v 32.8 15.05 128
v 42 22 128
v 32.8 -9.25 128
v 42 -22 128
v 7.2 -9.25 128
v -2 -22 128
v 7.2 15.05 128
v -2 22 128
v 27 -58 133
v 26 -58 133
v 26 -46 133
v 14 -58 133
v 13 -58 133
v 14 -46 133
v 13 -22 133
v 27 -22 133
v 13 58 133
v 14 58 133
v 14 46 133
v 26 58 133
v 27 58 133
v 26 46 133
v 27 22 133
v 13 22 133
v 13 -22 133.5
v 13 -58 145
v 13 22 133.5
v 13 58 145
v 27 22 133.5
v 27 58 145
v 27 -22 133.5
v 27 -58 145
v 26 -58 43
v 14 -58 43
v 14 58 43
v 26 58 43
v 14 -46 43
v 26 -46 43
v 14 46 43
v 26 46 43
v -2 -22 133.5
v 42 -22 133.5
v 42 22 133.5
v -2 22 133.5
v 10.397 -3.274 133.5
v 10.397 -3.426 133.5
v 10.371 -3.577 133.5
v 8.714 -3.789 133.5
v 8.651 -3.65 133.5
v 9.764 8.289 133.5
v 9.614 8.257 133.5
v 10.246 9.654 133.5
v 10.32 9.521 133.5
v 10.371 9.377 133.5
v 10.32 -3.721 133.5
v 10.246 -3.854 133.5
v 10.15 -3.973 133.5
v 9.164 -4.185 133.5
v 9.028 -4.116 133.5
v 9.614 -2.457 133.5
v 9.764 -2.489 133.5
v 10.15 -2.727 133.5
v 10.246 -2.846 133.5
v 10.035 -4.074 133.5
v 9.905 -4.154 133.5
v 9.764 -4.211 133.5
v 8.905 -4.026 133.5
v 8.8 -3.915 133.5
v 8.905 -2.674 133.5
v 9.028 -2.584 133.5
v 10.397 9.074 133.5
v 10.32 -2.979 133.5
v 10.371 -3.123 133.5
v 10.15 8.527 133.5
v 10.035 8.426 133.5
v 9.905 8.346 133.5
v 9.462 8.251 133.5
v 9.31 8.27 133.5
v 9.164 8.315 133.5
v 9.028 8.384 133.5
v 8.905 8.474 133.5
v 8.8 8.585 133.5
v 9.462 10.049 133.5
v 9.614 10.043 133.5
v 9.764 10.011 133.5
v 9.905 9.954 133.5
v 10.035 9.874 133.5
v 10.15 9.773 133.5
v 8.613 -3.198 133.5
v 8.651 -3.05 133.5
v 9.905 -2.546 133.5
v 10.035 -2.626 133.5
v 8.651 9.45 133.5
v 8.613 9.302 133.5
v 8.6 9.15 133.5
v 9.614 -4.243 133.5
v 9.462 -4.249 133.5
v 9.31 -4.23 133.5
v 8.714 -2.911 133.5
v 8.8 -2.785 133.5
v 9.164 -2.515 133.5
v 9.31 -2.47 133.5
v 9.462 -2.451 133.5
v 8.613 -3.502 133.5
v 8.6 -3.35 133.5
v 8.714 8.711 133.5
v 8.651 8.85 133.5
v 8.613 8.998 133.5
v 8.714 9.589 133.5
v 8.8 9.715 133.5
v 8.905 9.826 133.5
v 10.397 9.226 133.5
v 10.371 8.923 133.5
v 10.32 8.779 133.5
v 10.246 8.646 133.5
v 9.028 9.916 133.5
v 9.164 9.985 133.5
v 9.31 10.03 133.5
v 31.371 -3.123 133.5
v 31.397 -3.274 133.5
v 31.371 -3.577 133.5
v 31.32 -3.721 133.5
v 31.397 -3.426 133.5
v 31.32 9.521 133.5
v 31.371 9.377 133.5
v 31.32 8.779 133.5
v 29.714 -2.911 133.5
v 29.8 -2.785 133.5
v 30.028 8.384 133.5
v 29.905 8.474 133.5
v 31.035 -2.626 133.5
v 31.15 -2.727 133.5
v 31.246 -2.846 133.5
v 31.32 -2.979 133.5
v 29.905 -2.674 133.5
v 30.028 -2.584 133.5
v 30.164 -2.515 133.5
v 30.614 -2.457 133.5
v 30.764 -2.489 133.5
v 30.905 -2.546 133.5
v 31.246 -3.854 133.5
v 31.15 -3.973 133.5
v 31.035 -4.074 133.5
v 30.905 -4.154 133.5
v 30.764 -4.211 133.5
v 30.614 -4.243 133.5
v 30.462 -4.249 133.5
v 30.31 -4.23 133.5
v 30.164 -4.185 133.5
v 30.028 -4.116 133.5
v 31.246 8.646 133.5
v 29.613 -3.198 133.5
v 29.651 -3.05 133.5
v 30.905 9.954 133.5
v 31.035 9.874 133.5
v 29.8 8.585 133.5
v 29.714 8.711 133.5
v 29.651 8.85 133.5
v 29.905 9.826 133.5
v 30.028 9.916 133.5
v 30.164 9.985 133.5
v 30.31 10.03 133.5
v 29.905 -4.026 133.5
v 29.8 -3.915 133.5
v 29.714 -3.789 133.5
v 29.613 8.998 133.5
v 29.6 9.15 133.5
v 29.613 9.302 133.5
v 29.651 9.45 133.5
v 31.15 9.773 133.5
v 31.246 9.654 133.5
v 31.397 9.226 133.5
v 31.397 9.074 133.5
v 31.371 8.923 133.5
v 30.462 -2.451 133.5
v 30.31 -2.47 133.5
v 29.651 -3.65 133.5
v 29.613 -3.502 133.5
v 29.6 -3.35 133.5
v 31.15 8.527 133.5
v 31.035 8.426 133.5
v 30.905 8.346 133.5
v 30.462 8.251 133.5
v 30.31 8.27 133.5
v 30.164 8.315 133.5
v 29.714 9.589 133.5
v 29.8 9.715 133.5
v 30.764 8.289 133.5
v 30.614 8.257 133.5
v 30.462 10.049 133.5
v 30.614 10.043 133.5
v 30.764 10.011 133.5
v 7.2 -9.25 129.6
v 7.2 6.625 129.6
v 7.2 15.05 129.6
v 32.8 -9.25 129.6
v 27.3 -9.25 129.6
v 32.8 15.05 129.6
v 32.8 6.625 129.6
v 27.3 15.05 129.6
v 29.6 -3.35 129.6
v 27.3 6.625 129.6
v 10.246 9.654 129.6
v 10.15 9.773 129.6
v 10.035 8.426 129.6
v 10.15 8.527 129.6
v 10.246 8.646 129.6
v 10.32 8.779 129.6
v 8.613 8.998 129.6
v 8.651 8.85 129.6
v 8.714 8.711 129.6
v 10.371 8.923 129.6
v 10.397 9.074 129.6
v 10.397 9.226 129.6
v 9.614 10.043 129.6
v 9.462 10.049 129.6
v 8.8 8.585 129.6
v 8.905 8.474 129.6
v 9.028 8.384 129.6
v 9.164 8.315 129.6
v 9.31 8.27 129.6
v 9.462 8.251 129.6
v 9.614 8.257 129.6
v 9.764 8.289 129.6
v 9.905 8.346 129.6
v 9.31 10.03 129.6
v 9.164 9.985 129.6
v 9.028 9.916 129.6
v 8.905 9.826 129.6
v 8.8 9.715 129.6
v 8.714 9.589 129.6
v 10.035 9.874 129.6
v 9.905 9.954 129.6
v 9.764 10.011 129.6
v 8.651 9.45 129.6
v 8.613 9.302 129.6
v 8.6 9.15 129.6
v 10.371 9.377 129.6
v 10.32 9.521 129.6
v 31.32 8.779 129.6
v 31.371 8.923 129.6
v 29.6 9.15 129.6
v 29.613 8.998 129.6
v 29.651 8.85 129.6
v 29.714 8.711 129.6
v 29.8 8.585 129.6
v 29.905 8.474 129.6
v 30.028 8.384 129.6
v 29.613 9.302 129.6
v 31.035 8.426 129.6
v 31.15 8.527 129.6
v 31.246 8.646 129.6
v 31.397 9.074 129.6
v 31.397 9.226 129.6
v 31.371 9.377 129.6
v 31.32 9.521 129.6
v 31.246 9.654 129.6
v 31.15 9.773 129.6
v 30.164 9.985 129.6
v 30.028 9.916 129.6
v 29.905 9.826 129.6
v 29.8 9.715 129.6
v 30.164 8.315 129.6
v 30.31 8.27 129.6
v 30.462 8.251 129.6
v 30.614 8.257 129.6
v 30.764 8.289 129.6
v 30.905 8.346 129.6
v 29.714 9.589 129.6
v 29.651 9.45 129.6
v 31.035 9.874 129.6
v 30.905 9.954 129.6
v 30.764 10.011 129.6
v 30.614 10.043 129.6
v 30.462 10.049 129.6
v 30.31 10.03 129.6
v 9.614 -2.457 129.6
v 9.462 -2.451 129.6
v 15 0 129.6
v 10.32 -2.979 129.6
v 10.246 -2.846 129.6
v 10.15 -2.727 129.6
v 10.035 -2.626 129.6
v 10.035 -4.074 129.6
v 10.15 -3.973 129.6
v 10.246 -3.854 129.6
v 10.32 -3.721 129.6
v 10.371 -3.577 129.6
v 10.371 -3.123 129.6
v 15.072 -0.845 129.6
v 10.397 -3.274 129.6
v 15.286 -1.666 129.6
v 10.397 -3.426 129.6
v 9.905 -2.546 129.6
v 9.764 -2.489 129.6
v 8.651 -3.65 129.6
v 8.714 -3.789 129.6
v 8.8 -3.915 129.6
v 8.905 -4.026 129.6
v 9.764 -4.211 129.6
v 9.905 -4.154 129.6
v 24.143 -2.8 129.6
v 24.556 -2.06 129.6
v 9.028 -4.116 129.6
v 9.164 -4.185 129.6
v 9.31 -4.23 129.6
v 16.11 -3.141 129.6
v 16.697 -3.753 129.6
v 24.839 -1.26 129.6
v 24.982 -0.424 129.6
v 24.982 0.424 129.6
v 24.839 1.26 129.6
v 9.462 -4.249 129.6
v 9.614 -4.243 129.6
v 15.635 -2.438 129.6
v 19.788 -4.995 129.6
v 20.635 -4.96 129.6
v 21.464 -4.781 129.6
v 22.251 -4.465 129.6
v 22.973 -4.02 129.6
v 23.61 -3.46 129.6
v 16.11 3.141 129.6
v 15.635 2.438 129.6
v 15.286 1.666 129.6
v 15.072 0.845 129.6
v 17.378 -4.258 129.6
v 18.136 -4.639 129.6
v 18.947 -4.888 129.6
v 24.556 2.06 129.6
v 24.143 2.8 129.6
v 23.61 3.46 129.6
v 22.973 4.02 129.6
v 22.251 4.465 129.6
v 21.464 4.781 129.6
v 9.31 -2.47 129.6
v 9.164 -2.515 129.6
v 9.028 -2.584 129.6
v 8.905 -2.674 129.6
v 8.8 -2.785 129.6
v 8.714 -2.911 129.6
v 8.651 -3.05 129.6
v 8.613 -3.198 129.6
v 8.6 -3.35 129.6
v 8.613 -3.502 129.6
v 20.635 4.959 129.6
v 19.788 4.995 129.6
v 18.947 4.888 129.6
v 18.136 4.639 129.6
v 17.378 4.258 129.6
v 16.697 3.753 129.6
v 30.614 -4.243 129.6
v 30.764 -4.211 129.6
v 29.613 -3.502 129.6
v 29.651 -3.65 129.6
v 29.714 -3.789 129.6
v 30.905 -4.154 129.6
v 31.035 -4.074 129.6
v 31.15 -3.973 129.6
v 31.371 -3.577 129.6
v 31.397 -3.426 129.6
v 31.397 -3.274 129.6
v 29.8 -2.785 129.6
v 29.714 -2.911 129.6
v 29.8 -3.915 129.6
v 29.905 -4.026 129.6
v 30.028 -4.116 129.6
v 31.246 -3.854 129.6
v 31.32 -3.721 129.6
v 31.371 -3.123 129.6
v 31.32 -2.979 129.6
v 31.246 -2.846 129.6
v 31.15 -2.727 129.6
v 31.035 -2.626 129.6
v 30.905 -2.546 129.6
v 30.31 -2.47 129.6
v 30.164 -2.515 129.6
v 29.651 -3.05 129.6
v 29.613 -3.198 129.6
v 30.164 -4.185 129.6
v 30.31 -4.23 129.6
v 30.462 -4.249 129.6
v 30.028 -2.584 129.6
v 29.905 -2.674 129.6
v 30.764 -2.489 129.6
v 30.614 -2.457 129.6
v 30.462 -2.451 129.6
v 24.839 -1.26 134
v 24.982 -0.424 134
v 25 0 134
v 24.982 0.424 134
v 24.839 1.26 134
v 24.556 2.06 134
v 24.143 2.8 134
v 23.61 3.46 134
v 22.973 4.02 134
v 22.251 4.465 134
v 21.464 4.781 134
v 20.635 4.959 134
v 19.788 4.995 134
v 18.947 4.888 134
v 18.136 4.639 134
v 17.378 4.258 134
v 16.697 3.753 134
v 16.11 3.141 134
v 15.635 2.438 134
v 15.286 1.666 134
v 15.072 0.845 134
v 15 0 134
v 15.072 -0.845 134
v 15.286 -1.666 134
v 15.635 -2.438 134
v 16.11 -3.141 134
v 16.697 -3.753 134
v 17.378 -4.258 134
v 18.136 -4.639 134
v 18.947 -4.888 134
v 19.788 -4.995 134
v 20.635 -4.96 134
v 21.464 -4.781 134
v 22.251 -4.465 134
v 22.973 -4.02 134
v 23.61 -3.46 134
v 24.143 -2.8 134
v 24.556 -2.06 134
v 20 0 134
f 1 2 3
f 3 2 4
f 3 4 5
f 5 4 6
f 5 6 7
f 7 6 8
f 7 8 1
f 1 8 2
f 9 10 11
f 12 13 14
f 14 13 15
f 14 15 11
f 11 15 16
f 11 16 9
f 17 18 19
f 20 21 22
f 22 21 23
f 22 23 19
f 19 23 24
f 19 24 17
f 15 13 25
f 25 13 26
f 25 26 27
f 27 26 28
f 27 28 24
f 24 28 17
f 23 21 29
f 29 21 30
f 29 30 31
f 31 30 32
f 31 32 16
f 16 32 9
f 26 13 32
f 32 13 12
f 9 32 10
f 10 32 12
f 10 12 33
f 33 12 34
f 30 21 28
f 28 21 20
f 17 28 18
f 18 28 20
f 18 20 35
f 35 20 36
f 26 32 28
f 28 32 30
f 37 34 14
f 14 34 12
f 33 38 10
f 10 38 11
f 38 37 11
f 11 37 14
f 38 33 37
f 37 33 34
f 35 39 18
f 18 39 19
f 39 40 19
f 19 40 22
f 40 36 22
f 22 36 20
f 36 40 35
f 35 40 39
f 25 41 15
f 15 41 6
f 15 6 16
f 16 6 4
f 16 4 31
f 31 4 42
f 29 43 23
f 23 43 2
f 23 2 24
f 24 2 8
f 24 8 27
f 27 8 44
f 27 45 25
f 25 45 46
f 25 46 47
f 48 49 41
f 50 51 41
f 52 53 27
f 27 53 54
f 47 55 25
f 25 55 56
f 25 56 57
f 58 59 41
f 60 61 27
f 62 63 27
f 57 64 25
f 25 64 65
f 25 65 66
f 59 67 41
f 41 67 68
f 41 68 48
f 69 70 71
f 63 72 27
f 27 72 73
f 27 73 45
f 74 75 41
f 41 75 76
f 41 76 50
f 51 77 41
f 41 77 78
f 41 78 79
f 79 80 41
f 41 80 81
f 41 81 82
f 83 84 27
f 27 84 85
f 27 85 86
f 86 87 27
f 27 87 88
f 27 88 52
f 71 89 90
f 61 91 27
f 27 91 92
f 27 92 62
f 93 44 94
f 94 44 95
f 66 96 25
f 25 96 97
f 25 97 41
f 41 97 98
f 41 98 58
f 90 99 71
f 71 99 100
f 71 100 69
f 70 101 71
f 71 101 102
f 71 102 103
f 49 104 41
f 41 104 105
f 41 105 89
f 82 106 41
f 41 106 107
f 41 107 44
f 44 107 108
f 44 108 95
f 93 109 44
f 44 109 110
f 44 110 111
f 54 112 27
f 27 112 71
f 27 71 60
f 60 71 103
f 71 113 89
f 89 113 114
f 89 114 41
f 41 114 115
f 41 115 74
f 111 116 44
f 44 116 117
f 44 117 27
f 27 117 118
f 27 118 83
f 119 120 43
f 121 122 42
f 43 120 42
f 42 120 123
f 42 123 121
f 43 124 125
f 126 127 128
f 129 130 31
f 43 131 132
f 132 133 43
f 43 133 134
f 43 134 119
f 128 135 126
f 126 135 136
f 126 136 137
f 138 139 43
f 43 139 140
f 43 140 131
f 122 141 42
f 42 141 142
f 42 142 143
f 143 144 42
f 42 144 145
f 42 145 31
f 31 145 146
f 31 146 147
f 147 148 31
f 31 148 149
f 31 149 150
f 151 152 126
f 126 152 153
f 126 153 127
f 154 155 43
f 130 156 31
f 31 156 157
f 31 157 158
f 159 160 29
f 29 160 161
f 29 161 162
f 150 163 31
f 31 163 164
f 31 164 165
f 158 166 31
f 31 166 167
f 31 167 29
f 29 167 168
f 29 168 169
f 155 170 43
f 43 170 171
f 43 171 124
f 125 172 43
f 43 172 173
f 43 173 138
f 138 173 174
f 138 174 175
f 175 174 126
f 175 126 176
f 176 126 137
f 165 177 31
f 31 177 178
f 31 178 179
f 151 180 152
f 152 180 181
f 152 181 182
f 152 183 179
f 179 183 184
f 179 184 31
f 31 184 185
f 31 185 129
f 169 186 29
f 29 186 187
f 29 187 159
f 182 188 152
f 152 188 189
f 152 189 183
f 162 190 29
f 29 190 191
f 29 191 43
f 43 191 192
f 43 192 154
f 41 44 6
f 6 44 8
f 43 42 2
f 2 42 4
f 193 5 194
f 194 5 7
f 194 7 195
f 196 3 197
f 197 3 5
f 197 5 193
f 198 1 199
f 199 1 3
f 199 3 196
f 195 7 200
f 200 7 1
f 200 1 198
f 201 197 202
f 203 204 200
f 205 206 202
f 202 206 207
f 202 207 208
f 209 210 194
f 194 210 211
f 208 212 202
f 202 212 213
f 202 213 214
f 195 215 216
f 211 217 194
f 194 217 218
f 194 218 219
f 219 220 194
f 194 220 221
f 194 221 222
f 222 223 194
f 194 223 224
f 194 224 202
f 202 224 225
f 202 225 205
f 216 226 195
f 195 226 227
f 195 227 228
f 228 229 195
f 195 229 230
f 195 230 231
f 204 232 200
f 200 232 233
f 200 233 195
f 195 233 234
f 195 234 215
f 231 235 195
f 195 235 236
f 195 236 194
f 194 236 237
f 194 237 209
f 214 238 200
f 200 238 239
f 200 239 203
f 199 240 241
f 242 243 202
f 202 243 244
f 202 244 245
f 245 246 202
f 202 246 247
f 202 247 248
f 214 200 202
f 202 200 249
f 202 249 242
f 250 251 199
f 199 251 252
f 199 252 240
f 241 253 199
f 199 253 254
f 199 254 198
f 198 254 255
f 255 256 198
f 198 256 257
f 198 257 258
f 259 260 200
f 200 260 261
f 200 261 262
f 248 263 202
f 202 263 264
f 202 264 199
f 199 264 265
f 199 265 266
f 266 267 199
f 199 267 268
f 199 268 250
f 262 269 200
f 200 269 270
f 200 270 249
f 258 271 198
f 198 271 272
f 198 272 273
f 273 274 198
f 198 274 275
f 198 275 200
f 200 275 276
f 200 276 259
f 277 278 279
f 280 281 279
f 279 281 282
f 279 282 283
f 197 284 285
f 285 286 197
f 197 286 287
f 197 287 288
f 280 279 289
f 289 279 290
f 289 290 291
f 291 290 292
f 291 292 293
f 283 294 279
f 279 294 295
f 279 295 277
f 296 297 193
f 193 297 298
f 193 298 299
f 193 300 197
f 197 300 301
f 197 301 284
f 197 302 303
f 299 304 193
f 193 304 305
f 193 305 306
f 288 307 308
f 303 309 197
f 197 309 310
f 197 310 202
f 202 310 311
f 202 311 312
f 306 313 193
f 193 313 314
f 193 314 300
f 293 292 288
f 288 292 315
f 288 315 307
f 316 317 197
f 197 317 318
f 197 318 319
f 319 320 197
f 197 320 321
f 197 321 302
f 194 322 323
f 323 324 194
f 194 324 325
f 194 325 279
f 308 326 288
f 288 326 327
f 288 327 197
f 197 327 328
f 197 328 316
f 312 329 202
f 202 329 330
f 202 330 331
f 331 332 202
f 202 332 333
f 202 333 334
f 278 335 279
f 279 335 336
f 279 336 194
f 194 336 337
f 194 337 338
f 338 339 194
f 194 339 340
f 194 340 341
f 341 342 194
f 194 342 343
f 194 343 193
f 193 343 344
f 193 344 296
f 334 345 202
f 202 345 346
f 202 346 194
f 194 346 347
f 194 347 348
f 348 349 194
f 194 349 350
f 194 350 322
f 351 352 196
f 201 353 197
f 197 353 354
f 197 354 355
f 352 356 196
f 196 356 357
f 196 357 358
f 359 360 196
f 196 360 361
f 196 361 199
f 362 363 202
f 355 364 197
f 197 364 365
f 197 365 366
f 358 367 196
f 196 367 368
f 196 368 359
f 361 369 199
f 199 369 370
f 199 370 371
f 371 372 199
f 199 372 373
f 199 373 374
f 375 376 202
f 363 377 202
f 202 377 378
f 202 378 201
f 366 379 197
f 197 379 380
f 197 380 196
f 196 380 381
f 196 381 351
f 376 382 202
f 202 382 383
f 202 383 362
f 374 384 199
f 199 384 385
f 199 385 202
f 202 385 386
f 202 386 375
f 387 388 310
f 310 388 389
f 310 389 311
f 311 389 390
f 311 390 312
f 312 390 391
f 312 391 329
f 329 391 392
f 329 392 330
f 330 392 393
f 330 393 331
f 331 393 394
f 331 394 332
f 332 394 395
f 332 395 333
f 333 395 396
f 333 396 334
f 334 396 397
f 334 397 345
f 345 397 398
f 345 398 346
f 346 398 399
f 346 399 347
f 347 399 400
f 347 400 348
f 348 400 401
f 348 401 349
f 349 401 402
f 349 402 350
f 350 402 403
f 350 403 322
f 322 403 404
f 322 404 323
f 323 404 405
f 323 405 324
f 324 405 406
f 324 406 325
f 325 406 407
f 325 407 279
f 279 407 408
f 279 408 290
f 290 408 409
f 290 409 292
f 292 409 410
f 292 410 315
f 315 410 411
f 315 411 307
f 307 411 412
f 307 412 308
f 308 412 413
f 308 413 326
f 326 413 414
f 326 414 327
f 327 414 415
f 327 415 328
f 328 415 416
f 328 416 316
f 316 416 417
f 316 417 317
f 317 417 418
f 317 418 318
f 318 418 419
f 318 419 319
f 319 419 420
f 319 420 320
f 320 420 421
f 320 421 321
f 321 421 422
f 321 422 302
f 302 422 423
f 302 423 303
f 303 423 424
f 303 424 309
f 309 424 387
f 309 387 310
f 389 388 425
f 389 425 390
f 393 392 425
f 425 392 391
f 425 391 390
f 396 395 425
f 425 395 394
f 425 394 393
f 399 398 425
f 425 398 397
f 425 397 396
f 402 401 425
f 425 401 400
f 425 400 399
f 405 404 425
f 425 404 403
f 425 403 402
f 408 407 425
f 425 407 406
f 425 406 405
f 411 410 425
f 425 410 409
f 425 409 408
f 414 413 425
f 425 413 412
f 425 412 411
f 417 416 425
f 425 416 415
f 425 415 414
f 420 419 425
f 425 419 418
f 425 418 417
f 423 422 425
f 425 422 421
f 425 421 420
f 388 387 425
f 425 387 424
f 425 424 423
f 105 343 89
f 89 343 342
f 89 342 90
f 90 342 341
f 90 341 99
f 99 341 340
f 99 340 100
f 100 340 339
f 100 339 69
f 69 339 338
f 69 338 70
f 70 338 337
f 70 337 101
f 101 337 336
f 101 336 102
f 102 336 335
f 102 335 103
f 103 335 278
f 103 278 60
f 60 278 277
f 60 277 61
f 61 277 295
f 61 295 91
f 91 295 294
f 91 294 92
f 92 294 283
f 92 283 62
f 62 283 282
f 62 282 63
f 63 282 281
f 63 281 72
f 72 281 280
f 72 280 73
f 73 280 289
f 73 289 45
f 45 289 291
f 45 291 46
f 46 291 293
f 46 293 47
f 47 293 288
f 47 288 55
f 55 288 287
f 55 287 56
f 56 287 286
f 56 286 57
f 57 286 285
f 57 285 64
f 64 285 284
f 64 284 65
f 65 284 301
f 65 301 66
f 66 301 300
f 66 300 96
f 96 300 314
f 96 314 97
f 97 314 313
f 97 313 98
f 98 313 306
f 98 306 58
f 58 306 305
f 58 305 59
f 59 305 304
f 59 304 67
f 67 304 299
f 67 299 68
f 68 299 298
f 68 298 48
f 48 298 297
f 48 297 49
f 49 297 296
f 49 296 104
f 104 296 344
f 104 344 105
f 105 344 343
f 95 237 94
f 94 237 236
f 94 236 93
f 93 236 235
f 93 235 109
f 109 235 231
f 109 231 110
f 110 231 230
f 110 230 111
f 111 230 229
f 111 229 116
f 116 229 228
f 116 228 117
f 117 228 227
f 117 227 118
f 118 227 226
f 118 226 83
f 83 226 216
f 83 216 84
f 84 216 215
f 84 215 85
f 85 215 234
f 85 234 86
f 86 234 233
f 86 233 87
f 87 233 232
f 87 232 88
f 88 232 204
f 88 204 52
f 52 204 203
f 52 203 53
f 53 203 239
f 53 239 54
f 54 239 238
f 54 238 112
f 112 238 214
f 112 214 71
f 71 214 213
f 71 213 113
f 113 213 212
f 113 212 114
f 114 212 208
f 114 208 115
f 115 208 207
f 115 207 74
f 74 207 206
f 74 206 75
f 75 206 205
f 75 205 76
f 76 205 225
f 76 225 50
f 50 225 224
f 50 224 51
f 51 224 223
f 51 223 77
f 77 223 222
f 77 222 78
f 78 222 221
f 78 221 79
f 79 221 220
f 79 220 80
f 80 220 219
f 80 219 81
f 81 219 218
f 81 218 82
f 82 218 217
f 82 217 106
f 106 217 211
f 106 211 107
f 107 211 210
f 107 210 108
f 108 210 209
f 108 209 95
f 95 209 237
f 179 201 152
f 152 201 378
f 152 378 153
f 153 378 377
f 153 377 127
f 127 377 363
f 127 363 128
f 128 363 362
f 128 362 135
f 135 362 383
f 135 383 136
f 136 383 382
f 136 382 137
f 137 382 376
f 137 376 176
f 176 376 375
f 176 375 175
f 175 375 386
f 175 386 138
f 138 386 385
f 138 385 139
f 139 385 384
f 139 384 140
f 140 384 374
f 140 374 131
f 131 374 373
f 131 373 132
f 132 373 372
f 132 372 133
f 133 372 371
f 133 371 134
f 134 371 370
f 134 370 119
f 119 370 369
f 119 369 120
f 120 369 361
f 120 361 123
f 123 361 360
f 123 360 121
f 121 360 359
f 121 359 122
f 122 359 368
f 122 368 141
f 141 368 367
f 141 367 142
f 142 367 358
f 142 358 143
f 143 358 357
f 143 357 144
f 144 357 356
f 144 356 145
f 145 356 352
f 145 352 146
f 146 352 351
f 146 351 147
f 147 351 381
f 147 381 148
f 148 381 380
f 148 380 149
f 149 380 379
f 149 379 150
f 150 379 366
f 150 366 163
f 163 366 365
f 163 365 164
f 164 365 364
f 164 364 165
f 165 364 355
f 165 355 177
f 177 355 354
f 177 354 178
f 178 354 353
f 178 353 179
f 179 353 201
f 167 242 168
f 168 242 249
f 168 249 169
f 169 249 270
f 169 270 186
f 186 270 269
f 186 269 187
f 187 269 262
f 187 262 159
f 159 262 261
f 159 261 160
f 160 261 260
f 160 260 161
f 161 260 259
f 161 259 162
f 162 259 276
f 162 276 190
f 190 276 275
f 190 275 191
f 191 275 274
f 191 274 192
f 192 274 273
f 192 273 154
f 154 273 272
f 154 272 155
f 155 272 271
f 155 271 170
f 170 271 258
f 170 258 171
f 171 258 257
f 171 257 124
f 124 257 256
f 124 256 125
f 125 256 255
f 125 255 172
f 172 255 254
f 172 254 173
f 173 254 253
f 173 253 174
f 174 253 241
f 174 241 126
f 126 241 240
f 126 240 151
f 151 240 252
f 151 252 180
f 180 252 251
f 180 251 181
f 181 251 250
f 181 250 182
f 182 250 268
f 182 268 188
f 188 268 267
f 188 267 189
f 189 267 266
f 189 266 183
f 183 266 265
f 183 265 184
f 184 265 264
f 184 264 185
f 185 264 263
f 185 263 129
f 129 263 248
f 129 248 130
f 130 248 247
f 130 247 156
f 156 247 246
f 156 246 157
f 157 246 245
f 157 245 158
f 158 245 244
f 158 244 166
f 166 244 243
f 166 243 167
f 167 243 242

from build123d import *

# Parameters (mm, degrees)
CROSSBAR_START      = 133
SKETCH_1_W          = 14
SKETCH_1_H          = 116
CROSSBAR_DEPTH      = 12
POST_START          = 43
SKETCH_2_W          = 12
SKETCH_2_H          = 12
POST_DEPTH          = 102
EXTRUDE_START       = 43
SKETCH_3_W          = 12
SKETCH_3_H          = 12
EXTRUDE_3_DEPTH     = 102
CAMERAPLATE_START   = 128
SKETCH_4_W          = 44
SKETCH_4_H          = 44
CAMERAPLATE_DEPTH   = 5.5
CAMERARECESS_START  = 128
SKETCH_5_W          = 25.6
SKETCH_5_H          = 24.3
CAMERARECESS_DEPTH  = 1.6
LENSWINDOW_START    = 127
SKETCH_6_R          = 5
LENSWINDOW_DEPTH    = 7
CAMSCREW_START      = 127
SKETCH_7_R          = 0.9
CAMSCREW_DEPTH      = 7
CUT_EXTRUDE_START   = 127
SKETCH_8_R          = 0.9
CUT_EXTRUDE_4_DEPTH = 7
SKETCH_9_R          = 0.9
CUT_EXTRUDE_5_DEPTH = 7
SKETCH_10_R         = 0.9
CUT_EXTRUDE_6_DEPTH = 7


with BuildPart() as part:
    # 草图1 → Crossbar (new body)
    with BuildSketch(Plane.XY.offset(CROSSBAR_START)):
        with Locations((20, 0)):
            Rectangle(SKETCH_1_W, SKETCH_1_H)
    extrude(amount=CROSSBAR_DEPTH)

    # 草图2 → Post (add)
    with BuildSketch(Plane.XY.offset(POST_START)):
        with Locations((20, -52)):
            Rectangle(SKETCH_2_W, SKETCH_2_H)
    extrude(amount=POST_DEPTH)

    # 草图3 → 凸台-拉伸3 (add)
    with BuildSketch(Plane.XY.offset(EXTRUDE_START)):
        with Locations((20, 52)):
            Rectangle(SKETCH_3_W, SKETCH_3_H)
    extrude(amount=EXTRUDE_3_DEPTH)

    # 草图4 → CameraPlate (add)
    with BuildSketch(Plane.XY.offset(CAMERAPLATE_START)):
        with Locations((20, 0)):
            Rectangle(SKETCH_4_W, SKETCH_4_H)
    extrude(amount=CAMERAPLATE_DEPTH)

    # 草图5 → CameraRecess (cut)
    with BuildSketch(Plane.XY.offset(CAMERARECESS_START)):
        with Locations((20, 2.9)):
            Rectangle(SKETCH_5_W, SKETCH_5_H)
    extrude(amount=CAMERARECESS_DEPTH, mode=Mode.SUBTRACT)

    # 草图6 → LensWindow (cut)
    with BuildSketch(Plane.XY.offset(LENSWINDOW_START)):
        with Locations(Location((20, 0, 0), (0, 0, 180))):
            Circle(SKETCH_6_R)
    extrude(amount=LENSWINDOW_DEPTH, mode=Mode.SUBTRACT)

    # 草图7 → CamScrew (cut)
    with BuildSketch(Plane.XY.offset(CAMSCREW_START)):
        with Locations(Location((9.5, -3.35, 0), (0, 0, 180))):
            Circle(SKETCH_7_R)
    extrude(amount=CAMSCREW_DEPTH, mode=Mode.SUBTRACT)

    # 草图8 → 切除-拉伸4 (cut)
    with BuildSketch(Plane.XY.offset(CUT_EXTRUDE_START)):
        with Locations(Location((9.5, 9.15, 0), (0, 0, 180))):
            Circle(SKETCH_8_R)
    extrude(amount=CUT_EXTRUDE_4_DEPTH, mode=Mode.SUBTRACT)

    # 草图9 → 切除-拉伸5 (cut)
    with BuildSketch(Plane.XY.offset(CUT_EXTRUDE_START)):
        with Locations(Location((30.5, -3.35, 0), (0, 0, 180))):
            Circle(SKETCH_9_R)
    extrude(amount=CUT_EXTRUDE_5_DEPTH, mode=Mode.SUBTRACT)

    # 草图10 → 切除-拉伸6 (cut)
    with BuildSketch(Plane.XY.offset(CUT_EXTRUDE_START)):
        with Locations(Location((30.5, 9.15, 0), (0, 0, 180))):
            Circle(SKETCH_10_R)
    extrude(amount=CUT_EXTRUDE_6_DEPTH, mode=Mode.SUBTRACT)


solid = part.part
